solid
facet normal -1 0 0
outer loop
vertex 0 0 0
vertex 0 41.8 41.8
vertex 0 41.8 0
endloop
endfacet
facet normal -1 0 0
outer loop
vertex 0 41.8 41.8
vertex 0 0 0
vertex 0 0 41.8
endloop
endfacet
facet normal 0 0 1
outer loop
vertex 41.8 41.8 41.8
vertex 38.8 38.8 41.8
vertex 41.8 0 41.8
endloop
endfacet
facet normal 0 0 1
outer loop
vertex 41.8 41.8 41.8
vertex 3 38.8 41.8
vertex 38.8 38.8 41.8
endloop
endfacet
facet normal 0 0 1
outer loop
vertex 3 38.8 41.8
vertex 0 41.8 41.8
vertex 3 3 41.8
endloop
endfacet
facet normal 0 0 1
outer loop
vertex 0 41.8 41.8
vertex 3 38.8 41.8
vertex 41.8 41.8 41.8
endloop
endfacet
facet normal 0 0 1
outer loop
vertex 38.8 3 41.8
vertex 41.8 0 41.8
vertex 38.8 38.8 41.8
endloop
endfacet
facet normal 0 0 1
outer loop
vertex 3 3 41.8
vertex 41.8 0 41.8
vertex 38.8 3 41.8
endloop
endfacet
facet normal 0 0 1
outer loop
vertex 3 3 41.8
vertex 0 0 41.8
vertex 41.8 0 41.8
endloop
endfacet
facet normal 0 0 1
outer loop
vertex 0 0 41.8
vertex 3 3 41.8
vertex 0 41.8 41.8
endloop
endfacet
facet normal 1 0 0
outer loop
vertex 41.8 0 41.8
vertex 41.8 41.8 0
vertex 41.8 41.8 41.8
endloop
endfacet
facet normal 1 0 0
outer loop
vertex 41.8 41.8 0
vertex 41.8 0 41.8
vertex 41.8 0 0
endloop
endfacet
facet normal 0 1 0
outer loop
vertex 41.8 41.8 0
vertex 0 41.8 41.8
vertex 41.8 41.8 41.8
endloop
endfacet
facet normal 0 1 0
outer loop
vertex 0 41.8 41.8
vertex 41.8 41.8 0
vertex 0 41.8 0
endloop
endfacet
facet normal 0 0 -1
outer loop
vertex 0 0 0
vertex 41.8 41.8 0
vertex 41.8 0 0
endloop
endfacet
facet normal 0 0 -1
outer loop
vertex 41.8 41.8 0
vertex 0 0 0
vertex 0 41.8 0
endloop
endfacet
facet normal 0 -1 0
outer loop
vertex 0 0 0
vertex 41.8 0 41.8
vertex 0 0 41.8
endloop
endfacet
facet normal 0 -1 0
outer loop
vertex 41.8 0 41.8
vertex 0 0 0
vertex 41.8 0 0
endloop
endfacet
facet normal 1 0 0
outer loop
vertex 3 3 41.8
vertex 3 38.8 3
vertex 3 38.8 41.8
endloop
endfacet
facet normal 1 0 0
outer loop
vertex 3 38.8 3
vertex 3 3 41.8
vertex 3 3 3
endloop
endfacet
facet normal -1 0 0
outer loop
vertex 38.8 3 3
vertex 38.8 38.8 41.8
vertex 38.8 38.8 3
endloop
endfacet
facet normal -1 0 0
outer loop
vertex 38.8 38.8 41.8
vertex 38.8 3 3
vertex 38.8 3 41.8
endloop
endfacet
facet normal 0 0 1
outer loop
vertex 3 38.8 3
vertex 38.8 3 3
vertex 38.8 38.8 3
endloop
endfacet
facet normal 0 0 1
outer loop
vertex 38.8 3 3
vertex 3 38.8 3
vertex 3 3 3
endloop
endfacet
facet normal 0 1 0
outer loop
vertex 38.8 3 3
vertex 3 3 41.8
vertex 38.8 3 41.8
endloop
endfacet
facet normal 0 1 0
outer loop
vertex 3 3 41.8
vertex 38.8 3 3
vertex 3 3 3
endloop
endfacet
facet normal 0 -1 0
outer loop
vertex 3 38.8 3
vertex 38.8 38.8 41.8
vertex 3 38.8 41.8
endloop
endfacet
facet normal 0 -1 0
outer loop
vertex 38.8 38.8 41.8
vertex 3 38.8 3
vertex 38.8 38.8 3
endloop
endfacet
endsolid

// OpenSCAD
// Open-top box
// Units: millimeters
// Outer size: 41.8 x 41.8 x 41.8
// Wall thickness: 3.0

outer_x = 41.8;
outer_y = 41.8;
outer_z = 41.8;
wall = 3.0;

inner_x = outer_x - 2 * wall;
inner_y = outer_y - 2 * wall;
inner_z = outer_z - wall;

module open_top_box() {
    difference() {
        cube([outer_x, outer_y, outer_z], center = false);

        translate([wall, wall, wall])
            cube([inner_x, inner_y, inner_z + 0.01], center = false);
    }
}

color("LightSteelBlue")
    open_top_box();
